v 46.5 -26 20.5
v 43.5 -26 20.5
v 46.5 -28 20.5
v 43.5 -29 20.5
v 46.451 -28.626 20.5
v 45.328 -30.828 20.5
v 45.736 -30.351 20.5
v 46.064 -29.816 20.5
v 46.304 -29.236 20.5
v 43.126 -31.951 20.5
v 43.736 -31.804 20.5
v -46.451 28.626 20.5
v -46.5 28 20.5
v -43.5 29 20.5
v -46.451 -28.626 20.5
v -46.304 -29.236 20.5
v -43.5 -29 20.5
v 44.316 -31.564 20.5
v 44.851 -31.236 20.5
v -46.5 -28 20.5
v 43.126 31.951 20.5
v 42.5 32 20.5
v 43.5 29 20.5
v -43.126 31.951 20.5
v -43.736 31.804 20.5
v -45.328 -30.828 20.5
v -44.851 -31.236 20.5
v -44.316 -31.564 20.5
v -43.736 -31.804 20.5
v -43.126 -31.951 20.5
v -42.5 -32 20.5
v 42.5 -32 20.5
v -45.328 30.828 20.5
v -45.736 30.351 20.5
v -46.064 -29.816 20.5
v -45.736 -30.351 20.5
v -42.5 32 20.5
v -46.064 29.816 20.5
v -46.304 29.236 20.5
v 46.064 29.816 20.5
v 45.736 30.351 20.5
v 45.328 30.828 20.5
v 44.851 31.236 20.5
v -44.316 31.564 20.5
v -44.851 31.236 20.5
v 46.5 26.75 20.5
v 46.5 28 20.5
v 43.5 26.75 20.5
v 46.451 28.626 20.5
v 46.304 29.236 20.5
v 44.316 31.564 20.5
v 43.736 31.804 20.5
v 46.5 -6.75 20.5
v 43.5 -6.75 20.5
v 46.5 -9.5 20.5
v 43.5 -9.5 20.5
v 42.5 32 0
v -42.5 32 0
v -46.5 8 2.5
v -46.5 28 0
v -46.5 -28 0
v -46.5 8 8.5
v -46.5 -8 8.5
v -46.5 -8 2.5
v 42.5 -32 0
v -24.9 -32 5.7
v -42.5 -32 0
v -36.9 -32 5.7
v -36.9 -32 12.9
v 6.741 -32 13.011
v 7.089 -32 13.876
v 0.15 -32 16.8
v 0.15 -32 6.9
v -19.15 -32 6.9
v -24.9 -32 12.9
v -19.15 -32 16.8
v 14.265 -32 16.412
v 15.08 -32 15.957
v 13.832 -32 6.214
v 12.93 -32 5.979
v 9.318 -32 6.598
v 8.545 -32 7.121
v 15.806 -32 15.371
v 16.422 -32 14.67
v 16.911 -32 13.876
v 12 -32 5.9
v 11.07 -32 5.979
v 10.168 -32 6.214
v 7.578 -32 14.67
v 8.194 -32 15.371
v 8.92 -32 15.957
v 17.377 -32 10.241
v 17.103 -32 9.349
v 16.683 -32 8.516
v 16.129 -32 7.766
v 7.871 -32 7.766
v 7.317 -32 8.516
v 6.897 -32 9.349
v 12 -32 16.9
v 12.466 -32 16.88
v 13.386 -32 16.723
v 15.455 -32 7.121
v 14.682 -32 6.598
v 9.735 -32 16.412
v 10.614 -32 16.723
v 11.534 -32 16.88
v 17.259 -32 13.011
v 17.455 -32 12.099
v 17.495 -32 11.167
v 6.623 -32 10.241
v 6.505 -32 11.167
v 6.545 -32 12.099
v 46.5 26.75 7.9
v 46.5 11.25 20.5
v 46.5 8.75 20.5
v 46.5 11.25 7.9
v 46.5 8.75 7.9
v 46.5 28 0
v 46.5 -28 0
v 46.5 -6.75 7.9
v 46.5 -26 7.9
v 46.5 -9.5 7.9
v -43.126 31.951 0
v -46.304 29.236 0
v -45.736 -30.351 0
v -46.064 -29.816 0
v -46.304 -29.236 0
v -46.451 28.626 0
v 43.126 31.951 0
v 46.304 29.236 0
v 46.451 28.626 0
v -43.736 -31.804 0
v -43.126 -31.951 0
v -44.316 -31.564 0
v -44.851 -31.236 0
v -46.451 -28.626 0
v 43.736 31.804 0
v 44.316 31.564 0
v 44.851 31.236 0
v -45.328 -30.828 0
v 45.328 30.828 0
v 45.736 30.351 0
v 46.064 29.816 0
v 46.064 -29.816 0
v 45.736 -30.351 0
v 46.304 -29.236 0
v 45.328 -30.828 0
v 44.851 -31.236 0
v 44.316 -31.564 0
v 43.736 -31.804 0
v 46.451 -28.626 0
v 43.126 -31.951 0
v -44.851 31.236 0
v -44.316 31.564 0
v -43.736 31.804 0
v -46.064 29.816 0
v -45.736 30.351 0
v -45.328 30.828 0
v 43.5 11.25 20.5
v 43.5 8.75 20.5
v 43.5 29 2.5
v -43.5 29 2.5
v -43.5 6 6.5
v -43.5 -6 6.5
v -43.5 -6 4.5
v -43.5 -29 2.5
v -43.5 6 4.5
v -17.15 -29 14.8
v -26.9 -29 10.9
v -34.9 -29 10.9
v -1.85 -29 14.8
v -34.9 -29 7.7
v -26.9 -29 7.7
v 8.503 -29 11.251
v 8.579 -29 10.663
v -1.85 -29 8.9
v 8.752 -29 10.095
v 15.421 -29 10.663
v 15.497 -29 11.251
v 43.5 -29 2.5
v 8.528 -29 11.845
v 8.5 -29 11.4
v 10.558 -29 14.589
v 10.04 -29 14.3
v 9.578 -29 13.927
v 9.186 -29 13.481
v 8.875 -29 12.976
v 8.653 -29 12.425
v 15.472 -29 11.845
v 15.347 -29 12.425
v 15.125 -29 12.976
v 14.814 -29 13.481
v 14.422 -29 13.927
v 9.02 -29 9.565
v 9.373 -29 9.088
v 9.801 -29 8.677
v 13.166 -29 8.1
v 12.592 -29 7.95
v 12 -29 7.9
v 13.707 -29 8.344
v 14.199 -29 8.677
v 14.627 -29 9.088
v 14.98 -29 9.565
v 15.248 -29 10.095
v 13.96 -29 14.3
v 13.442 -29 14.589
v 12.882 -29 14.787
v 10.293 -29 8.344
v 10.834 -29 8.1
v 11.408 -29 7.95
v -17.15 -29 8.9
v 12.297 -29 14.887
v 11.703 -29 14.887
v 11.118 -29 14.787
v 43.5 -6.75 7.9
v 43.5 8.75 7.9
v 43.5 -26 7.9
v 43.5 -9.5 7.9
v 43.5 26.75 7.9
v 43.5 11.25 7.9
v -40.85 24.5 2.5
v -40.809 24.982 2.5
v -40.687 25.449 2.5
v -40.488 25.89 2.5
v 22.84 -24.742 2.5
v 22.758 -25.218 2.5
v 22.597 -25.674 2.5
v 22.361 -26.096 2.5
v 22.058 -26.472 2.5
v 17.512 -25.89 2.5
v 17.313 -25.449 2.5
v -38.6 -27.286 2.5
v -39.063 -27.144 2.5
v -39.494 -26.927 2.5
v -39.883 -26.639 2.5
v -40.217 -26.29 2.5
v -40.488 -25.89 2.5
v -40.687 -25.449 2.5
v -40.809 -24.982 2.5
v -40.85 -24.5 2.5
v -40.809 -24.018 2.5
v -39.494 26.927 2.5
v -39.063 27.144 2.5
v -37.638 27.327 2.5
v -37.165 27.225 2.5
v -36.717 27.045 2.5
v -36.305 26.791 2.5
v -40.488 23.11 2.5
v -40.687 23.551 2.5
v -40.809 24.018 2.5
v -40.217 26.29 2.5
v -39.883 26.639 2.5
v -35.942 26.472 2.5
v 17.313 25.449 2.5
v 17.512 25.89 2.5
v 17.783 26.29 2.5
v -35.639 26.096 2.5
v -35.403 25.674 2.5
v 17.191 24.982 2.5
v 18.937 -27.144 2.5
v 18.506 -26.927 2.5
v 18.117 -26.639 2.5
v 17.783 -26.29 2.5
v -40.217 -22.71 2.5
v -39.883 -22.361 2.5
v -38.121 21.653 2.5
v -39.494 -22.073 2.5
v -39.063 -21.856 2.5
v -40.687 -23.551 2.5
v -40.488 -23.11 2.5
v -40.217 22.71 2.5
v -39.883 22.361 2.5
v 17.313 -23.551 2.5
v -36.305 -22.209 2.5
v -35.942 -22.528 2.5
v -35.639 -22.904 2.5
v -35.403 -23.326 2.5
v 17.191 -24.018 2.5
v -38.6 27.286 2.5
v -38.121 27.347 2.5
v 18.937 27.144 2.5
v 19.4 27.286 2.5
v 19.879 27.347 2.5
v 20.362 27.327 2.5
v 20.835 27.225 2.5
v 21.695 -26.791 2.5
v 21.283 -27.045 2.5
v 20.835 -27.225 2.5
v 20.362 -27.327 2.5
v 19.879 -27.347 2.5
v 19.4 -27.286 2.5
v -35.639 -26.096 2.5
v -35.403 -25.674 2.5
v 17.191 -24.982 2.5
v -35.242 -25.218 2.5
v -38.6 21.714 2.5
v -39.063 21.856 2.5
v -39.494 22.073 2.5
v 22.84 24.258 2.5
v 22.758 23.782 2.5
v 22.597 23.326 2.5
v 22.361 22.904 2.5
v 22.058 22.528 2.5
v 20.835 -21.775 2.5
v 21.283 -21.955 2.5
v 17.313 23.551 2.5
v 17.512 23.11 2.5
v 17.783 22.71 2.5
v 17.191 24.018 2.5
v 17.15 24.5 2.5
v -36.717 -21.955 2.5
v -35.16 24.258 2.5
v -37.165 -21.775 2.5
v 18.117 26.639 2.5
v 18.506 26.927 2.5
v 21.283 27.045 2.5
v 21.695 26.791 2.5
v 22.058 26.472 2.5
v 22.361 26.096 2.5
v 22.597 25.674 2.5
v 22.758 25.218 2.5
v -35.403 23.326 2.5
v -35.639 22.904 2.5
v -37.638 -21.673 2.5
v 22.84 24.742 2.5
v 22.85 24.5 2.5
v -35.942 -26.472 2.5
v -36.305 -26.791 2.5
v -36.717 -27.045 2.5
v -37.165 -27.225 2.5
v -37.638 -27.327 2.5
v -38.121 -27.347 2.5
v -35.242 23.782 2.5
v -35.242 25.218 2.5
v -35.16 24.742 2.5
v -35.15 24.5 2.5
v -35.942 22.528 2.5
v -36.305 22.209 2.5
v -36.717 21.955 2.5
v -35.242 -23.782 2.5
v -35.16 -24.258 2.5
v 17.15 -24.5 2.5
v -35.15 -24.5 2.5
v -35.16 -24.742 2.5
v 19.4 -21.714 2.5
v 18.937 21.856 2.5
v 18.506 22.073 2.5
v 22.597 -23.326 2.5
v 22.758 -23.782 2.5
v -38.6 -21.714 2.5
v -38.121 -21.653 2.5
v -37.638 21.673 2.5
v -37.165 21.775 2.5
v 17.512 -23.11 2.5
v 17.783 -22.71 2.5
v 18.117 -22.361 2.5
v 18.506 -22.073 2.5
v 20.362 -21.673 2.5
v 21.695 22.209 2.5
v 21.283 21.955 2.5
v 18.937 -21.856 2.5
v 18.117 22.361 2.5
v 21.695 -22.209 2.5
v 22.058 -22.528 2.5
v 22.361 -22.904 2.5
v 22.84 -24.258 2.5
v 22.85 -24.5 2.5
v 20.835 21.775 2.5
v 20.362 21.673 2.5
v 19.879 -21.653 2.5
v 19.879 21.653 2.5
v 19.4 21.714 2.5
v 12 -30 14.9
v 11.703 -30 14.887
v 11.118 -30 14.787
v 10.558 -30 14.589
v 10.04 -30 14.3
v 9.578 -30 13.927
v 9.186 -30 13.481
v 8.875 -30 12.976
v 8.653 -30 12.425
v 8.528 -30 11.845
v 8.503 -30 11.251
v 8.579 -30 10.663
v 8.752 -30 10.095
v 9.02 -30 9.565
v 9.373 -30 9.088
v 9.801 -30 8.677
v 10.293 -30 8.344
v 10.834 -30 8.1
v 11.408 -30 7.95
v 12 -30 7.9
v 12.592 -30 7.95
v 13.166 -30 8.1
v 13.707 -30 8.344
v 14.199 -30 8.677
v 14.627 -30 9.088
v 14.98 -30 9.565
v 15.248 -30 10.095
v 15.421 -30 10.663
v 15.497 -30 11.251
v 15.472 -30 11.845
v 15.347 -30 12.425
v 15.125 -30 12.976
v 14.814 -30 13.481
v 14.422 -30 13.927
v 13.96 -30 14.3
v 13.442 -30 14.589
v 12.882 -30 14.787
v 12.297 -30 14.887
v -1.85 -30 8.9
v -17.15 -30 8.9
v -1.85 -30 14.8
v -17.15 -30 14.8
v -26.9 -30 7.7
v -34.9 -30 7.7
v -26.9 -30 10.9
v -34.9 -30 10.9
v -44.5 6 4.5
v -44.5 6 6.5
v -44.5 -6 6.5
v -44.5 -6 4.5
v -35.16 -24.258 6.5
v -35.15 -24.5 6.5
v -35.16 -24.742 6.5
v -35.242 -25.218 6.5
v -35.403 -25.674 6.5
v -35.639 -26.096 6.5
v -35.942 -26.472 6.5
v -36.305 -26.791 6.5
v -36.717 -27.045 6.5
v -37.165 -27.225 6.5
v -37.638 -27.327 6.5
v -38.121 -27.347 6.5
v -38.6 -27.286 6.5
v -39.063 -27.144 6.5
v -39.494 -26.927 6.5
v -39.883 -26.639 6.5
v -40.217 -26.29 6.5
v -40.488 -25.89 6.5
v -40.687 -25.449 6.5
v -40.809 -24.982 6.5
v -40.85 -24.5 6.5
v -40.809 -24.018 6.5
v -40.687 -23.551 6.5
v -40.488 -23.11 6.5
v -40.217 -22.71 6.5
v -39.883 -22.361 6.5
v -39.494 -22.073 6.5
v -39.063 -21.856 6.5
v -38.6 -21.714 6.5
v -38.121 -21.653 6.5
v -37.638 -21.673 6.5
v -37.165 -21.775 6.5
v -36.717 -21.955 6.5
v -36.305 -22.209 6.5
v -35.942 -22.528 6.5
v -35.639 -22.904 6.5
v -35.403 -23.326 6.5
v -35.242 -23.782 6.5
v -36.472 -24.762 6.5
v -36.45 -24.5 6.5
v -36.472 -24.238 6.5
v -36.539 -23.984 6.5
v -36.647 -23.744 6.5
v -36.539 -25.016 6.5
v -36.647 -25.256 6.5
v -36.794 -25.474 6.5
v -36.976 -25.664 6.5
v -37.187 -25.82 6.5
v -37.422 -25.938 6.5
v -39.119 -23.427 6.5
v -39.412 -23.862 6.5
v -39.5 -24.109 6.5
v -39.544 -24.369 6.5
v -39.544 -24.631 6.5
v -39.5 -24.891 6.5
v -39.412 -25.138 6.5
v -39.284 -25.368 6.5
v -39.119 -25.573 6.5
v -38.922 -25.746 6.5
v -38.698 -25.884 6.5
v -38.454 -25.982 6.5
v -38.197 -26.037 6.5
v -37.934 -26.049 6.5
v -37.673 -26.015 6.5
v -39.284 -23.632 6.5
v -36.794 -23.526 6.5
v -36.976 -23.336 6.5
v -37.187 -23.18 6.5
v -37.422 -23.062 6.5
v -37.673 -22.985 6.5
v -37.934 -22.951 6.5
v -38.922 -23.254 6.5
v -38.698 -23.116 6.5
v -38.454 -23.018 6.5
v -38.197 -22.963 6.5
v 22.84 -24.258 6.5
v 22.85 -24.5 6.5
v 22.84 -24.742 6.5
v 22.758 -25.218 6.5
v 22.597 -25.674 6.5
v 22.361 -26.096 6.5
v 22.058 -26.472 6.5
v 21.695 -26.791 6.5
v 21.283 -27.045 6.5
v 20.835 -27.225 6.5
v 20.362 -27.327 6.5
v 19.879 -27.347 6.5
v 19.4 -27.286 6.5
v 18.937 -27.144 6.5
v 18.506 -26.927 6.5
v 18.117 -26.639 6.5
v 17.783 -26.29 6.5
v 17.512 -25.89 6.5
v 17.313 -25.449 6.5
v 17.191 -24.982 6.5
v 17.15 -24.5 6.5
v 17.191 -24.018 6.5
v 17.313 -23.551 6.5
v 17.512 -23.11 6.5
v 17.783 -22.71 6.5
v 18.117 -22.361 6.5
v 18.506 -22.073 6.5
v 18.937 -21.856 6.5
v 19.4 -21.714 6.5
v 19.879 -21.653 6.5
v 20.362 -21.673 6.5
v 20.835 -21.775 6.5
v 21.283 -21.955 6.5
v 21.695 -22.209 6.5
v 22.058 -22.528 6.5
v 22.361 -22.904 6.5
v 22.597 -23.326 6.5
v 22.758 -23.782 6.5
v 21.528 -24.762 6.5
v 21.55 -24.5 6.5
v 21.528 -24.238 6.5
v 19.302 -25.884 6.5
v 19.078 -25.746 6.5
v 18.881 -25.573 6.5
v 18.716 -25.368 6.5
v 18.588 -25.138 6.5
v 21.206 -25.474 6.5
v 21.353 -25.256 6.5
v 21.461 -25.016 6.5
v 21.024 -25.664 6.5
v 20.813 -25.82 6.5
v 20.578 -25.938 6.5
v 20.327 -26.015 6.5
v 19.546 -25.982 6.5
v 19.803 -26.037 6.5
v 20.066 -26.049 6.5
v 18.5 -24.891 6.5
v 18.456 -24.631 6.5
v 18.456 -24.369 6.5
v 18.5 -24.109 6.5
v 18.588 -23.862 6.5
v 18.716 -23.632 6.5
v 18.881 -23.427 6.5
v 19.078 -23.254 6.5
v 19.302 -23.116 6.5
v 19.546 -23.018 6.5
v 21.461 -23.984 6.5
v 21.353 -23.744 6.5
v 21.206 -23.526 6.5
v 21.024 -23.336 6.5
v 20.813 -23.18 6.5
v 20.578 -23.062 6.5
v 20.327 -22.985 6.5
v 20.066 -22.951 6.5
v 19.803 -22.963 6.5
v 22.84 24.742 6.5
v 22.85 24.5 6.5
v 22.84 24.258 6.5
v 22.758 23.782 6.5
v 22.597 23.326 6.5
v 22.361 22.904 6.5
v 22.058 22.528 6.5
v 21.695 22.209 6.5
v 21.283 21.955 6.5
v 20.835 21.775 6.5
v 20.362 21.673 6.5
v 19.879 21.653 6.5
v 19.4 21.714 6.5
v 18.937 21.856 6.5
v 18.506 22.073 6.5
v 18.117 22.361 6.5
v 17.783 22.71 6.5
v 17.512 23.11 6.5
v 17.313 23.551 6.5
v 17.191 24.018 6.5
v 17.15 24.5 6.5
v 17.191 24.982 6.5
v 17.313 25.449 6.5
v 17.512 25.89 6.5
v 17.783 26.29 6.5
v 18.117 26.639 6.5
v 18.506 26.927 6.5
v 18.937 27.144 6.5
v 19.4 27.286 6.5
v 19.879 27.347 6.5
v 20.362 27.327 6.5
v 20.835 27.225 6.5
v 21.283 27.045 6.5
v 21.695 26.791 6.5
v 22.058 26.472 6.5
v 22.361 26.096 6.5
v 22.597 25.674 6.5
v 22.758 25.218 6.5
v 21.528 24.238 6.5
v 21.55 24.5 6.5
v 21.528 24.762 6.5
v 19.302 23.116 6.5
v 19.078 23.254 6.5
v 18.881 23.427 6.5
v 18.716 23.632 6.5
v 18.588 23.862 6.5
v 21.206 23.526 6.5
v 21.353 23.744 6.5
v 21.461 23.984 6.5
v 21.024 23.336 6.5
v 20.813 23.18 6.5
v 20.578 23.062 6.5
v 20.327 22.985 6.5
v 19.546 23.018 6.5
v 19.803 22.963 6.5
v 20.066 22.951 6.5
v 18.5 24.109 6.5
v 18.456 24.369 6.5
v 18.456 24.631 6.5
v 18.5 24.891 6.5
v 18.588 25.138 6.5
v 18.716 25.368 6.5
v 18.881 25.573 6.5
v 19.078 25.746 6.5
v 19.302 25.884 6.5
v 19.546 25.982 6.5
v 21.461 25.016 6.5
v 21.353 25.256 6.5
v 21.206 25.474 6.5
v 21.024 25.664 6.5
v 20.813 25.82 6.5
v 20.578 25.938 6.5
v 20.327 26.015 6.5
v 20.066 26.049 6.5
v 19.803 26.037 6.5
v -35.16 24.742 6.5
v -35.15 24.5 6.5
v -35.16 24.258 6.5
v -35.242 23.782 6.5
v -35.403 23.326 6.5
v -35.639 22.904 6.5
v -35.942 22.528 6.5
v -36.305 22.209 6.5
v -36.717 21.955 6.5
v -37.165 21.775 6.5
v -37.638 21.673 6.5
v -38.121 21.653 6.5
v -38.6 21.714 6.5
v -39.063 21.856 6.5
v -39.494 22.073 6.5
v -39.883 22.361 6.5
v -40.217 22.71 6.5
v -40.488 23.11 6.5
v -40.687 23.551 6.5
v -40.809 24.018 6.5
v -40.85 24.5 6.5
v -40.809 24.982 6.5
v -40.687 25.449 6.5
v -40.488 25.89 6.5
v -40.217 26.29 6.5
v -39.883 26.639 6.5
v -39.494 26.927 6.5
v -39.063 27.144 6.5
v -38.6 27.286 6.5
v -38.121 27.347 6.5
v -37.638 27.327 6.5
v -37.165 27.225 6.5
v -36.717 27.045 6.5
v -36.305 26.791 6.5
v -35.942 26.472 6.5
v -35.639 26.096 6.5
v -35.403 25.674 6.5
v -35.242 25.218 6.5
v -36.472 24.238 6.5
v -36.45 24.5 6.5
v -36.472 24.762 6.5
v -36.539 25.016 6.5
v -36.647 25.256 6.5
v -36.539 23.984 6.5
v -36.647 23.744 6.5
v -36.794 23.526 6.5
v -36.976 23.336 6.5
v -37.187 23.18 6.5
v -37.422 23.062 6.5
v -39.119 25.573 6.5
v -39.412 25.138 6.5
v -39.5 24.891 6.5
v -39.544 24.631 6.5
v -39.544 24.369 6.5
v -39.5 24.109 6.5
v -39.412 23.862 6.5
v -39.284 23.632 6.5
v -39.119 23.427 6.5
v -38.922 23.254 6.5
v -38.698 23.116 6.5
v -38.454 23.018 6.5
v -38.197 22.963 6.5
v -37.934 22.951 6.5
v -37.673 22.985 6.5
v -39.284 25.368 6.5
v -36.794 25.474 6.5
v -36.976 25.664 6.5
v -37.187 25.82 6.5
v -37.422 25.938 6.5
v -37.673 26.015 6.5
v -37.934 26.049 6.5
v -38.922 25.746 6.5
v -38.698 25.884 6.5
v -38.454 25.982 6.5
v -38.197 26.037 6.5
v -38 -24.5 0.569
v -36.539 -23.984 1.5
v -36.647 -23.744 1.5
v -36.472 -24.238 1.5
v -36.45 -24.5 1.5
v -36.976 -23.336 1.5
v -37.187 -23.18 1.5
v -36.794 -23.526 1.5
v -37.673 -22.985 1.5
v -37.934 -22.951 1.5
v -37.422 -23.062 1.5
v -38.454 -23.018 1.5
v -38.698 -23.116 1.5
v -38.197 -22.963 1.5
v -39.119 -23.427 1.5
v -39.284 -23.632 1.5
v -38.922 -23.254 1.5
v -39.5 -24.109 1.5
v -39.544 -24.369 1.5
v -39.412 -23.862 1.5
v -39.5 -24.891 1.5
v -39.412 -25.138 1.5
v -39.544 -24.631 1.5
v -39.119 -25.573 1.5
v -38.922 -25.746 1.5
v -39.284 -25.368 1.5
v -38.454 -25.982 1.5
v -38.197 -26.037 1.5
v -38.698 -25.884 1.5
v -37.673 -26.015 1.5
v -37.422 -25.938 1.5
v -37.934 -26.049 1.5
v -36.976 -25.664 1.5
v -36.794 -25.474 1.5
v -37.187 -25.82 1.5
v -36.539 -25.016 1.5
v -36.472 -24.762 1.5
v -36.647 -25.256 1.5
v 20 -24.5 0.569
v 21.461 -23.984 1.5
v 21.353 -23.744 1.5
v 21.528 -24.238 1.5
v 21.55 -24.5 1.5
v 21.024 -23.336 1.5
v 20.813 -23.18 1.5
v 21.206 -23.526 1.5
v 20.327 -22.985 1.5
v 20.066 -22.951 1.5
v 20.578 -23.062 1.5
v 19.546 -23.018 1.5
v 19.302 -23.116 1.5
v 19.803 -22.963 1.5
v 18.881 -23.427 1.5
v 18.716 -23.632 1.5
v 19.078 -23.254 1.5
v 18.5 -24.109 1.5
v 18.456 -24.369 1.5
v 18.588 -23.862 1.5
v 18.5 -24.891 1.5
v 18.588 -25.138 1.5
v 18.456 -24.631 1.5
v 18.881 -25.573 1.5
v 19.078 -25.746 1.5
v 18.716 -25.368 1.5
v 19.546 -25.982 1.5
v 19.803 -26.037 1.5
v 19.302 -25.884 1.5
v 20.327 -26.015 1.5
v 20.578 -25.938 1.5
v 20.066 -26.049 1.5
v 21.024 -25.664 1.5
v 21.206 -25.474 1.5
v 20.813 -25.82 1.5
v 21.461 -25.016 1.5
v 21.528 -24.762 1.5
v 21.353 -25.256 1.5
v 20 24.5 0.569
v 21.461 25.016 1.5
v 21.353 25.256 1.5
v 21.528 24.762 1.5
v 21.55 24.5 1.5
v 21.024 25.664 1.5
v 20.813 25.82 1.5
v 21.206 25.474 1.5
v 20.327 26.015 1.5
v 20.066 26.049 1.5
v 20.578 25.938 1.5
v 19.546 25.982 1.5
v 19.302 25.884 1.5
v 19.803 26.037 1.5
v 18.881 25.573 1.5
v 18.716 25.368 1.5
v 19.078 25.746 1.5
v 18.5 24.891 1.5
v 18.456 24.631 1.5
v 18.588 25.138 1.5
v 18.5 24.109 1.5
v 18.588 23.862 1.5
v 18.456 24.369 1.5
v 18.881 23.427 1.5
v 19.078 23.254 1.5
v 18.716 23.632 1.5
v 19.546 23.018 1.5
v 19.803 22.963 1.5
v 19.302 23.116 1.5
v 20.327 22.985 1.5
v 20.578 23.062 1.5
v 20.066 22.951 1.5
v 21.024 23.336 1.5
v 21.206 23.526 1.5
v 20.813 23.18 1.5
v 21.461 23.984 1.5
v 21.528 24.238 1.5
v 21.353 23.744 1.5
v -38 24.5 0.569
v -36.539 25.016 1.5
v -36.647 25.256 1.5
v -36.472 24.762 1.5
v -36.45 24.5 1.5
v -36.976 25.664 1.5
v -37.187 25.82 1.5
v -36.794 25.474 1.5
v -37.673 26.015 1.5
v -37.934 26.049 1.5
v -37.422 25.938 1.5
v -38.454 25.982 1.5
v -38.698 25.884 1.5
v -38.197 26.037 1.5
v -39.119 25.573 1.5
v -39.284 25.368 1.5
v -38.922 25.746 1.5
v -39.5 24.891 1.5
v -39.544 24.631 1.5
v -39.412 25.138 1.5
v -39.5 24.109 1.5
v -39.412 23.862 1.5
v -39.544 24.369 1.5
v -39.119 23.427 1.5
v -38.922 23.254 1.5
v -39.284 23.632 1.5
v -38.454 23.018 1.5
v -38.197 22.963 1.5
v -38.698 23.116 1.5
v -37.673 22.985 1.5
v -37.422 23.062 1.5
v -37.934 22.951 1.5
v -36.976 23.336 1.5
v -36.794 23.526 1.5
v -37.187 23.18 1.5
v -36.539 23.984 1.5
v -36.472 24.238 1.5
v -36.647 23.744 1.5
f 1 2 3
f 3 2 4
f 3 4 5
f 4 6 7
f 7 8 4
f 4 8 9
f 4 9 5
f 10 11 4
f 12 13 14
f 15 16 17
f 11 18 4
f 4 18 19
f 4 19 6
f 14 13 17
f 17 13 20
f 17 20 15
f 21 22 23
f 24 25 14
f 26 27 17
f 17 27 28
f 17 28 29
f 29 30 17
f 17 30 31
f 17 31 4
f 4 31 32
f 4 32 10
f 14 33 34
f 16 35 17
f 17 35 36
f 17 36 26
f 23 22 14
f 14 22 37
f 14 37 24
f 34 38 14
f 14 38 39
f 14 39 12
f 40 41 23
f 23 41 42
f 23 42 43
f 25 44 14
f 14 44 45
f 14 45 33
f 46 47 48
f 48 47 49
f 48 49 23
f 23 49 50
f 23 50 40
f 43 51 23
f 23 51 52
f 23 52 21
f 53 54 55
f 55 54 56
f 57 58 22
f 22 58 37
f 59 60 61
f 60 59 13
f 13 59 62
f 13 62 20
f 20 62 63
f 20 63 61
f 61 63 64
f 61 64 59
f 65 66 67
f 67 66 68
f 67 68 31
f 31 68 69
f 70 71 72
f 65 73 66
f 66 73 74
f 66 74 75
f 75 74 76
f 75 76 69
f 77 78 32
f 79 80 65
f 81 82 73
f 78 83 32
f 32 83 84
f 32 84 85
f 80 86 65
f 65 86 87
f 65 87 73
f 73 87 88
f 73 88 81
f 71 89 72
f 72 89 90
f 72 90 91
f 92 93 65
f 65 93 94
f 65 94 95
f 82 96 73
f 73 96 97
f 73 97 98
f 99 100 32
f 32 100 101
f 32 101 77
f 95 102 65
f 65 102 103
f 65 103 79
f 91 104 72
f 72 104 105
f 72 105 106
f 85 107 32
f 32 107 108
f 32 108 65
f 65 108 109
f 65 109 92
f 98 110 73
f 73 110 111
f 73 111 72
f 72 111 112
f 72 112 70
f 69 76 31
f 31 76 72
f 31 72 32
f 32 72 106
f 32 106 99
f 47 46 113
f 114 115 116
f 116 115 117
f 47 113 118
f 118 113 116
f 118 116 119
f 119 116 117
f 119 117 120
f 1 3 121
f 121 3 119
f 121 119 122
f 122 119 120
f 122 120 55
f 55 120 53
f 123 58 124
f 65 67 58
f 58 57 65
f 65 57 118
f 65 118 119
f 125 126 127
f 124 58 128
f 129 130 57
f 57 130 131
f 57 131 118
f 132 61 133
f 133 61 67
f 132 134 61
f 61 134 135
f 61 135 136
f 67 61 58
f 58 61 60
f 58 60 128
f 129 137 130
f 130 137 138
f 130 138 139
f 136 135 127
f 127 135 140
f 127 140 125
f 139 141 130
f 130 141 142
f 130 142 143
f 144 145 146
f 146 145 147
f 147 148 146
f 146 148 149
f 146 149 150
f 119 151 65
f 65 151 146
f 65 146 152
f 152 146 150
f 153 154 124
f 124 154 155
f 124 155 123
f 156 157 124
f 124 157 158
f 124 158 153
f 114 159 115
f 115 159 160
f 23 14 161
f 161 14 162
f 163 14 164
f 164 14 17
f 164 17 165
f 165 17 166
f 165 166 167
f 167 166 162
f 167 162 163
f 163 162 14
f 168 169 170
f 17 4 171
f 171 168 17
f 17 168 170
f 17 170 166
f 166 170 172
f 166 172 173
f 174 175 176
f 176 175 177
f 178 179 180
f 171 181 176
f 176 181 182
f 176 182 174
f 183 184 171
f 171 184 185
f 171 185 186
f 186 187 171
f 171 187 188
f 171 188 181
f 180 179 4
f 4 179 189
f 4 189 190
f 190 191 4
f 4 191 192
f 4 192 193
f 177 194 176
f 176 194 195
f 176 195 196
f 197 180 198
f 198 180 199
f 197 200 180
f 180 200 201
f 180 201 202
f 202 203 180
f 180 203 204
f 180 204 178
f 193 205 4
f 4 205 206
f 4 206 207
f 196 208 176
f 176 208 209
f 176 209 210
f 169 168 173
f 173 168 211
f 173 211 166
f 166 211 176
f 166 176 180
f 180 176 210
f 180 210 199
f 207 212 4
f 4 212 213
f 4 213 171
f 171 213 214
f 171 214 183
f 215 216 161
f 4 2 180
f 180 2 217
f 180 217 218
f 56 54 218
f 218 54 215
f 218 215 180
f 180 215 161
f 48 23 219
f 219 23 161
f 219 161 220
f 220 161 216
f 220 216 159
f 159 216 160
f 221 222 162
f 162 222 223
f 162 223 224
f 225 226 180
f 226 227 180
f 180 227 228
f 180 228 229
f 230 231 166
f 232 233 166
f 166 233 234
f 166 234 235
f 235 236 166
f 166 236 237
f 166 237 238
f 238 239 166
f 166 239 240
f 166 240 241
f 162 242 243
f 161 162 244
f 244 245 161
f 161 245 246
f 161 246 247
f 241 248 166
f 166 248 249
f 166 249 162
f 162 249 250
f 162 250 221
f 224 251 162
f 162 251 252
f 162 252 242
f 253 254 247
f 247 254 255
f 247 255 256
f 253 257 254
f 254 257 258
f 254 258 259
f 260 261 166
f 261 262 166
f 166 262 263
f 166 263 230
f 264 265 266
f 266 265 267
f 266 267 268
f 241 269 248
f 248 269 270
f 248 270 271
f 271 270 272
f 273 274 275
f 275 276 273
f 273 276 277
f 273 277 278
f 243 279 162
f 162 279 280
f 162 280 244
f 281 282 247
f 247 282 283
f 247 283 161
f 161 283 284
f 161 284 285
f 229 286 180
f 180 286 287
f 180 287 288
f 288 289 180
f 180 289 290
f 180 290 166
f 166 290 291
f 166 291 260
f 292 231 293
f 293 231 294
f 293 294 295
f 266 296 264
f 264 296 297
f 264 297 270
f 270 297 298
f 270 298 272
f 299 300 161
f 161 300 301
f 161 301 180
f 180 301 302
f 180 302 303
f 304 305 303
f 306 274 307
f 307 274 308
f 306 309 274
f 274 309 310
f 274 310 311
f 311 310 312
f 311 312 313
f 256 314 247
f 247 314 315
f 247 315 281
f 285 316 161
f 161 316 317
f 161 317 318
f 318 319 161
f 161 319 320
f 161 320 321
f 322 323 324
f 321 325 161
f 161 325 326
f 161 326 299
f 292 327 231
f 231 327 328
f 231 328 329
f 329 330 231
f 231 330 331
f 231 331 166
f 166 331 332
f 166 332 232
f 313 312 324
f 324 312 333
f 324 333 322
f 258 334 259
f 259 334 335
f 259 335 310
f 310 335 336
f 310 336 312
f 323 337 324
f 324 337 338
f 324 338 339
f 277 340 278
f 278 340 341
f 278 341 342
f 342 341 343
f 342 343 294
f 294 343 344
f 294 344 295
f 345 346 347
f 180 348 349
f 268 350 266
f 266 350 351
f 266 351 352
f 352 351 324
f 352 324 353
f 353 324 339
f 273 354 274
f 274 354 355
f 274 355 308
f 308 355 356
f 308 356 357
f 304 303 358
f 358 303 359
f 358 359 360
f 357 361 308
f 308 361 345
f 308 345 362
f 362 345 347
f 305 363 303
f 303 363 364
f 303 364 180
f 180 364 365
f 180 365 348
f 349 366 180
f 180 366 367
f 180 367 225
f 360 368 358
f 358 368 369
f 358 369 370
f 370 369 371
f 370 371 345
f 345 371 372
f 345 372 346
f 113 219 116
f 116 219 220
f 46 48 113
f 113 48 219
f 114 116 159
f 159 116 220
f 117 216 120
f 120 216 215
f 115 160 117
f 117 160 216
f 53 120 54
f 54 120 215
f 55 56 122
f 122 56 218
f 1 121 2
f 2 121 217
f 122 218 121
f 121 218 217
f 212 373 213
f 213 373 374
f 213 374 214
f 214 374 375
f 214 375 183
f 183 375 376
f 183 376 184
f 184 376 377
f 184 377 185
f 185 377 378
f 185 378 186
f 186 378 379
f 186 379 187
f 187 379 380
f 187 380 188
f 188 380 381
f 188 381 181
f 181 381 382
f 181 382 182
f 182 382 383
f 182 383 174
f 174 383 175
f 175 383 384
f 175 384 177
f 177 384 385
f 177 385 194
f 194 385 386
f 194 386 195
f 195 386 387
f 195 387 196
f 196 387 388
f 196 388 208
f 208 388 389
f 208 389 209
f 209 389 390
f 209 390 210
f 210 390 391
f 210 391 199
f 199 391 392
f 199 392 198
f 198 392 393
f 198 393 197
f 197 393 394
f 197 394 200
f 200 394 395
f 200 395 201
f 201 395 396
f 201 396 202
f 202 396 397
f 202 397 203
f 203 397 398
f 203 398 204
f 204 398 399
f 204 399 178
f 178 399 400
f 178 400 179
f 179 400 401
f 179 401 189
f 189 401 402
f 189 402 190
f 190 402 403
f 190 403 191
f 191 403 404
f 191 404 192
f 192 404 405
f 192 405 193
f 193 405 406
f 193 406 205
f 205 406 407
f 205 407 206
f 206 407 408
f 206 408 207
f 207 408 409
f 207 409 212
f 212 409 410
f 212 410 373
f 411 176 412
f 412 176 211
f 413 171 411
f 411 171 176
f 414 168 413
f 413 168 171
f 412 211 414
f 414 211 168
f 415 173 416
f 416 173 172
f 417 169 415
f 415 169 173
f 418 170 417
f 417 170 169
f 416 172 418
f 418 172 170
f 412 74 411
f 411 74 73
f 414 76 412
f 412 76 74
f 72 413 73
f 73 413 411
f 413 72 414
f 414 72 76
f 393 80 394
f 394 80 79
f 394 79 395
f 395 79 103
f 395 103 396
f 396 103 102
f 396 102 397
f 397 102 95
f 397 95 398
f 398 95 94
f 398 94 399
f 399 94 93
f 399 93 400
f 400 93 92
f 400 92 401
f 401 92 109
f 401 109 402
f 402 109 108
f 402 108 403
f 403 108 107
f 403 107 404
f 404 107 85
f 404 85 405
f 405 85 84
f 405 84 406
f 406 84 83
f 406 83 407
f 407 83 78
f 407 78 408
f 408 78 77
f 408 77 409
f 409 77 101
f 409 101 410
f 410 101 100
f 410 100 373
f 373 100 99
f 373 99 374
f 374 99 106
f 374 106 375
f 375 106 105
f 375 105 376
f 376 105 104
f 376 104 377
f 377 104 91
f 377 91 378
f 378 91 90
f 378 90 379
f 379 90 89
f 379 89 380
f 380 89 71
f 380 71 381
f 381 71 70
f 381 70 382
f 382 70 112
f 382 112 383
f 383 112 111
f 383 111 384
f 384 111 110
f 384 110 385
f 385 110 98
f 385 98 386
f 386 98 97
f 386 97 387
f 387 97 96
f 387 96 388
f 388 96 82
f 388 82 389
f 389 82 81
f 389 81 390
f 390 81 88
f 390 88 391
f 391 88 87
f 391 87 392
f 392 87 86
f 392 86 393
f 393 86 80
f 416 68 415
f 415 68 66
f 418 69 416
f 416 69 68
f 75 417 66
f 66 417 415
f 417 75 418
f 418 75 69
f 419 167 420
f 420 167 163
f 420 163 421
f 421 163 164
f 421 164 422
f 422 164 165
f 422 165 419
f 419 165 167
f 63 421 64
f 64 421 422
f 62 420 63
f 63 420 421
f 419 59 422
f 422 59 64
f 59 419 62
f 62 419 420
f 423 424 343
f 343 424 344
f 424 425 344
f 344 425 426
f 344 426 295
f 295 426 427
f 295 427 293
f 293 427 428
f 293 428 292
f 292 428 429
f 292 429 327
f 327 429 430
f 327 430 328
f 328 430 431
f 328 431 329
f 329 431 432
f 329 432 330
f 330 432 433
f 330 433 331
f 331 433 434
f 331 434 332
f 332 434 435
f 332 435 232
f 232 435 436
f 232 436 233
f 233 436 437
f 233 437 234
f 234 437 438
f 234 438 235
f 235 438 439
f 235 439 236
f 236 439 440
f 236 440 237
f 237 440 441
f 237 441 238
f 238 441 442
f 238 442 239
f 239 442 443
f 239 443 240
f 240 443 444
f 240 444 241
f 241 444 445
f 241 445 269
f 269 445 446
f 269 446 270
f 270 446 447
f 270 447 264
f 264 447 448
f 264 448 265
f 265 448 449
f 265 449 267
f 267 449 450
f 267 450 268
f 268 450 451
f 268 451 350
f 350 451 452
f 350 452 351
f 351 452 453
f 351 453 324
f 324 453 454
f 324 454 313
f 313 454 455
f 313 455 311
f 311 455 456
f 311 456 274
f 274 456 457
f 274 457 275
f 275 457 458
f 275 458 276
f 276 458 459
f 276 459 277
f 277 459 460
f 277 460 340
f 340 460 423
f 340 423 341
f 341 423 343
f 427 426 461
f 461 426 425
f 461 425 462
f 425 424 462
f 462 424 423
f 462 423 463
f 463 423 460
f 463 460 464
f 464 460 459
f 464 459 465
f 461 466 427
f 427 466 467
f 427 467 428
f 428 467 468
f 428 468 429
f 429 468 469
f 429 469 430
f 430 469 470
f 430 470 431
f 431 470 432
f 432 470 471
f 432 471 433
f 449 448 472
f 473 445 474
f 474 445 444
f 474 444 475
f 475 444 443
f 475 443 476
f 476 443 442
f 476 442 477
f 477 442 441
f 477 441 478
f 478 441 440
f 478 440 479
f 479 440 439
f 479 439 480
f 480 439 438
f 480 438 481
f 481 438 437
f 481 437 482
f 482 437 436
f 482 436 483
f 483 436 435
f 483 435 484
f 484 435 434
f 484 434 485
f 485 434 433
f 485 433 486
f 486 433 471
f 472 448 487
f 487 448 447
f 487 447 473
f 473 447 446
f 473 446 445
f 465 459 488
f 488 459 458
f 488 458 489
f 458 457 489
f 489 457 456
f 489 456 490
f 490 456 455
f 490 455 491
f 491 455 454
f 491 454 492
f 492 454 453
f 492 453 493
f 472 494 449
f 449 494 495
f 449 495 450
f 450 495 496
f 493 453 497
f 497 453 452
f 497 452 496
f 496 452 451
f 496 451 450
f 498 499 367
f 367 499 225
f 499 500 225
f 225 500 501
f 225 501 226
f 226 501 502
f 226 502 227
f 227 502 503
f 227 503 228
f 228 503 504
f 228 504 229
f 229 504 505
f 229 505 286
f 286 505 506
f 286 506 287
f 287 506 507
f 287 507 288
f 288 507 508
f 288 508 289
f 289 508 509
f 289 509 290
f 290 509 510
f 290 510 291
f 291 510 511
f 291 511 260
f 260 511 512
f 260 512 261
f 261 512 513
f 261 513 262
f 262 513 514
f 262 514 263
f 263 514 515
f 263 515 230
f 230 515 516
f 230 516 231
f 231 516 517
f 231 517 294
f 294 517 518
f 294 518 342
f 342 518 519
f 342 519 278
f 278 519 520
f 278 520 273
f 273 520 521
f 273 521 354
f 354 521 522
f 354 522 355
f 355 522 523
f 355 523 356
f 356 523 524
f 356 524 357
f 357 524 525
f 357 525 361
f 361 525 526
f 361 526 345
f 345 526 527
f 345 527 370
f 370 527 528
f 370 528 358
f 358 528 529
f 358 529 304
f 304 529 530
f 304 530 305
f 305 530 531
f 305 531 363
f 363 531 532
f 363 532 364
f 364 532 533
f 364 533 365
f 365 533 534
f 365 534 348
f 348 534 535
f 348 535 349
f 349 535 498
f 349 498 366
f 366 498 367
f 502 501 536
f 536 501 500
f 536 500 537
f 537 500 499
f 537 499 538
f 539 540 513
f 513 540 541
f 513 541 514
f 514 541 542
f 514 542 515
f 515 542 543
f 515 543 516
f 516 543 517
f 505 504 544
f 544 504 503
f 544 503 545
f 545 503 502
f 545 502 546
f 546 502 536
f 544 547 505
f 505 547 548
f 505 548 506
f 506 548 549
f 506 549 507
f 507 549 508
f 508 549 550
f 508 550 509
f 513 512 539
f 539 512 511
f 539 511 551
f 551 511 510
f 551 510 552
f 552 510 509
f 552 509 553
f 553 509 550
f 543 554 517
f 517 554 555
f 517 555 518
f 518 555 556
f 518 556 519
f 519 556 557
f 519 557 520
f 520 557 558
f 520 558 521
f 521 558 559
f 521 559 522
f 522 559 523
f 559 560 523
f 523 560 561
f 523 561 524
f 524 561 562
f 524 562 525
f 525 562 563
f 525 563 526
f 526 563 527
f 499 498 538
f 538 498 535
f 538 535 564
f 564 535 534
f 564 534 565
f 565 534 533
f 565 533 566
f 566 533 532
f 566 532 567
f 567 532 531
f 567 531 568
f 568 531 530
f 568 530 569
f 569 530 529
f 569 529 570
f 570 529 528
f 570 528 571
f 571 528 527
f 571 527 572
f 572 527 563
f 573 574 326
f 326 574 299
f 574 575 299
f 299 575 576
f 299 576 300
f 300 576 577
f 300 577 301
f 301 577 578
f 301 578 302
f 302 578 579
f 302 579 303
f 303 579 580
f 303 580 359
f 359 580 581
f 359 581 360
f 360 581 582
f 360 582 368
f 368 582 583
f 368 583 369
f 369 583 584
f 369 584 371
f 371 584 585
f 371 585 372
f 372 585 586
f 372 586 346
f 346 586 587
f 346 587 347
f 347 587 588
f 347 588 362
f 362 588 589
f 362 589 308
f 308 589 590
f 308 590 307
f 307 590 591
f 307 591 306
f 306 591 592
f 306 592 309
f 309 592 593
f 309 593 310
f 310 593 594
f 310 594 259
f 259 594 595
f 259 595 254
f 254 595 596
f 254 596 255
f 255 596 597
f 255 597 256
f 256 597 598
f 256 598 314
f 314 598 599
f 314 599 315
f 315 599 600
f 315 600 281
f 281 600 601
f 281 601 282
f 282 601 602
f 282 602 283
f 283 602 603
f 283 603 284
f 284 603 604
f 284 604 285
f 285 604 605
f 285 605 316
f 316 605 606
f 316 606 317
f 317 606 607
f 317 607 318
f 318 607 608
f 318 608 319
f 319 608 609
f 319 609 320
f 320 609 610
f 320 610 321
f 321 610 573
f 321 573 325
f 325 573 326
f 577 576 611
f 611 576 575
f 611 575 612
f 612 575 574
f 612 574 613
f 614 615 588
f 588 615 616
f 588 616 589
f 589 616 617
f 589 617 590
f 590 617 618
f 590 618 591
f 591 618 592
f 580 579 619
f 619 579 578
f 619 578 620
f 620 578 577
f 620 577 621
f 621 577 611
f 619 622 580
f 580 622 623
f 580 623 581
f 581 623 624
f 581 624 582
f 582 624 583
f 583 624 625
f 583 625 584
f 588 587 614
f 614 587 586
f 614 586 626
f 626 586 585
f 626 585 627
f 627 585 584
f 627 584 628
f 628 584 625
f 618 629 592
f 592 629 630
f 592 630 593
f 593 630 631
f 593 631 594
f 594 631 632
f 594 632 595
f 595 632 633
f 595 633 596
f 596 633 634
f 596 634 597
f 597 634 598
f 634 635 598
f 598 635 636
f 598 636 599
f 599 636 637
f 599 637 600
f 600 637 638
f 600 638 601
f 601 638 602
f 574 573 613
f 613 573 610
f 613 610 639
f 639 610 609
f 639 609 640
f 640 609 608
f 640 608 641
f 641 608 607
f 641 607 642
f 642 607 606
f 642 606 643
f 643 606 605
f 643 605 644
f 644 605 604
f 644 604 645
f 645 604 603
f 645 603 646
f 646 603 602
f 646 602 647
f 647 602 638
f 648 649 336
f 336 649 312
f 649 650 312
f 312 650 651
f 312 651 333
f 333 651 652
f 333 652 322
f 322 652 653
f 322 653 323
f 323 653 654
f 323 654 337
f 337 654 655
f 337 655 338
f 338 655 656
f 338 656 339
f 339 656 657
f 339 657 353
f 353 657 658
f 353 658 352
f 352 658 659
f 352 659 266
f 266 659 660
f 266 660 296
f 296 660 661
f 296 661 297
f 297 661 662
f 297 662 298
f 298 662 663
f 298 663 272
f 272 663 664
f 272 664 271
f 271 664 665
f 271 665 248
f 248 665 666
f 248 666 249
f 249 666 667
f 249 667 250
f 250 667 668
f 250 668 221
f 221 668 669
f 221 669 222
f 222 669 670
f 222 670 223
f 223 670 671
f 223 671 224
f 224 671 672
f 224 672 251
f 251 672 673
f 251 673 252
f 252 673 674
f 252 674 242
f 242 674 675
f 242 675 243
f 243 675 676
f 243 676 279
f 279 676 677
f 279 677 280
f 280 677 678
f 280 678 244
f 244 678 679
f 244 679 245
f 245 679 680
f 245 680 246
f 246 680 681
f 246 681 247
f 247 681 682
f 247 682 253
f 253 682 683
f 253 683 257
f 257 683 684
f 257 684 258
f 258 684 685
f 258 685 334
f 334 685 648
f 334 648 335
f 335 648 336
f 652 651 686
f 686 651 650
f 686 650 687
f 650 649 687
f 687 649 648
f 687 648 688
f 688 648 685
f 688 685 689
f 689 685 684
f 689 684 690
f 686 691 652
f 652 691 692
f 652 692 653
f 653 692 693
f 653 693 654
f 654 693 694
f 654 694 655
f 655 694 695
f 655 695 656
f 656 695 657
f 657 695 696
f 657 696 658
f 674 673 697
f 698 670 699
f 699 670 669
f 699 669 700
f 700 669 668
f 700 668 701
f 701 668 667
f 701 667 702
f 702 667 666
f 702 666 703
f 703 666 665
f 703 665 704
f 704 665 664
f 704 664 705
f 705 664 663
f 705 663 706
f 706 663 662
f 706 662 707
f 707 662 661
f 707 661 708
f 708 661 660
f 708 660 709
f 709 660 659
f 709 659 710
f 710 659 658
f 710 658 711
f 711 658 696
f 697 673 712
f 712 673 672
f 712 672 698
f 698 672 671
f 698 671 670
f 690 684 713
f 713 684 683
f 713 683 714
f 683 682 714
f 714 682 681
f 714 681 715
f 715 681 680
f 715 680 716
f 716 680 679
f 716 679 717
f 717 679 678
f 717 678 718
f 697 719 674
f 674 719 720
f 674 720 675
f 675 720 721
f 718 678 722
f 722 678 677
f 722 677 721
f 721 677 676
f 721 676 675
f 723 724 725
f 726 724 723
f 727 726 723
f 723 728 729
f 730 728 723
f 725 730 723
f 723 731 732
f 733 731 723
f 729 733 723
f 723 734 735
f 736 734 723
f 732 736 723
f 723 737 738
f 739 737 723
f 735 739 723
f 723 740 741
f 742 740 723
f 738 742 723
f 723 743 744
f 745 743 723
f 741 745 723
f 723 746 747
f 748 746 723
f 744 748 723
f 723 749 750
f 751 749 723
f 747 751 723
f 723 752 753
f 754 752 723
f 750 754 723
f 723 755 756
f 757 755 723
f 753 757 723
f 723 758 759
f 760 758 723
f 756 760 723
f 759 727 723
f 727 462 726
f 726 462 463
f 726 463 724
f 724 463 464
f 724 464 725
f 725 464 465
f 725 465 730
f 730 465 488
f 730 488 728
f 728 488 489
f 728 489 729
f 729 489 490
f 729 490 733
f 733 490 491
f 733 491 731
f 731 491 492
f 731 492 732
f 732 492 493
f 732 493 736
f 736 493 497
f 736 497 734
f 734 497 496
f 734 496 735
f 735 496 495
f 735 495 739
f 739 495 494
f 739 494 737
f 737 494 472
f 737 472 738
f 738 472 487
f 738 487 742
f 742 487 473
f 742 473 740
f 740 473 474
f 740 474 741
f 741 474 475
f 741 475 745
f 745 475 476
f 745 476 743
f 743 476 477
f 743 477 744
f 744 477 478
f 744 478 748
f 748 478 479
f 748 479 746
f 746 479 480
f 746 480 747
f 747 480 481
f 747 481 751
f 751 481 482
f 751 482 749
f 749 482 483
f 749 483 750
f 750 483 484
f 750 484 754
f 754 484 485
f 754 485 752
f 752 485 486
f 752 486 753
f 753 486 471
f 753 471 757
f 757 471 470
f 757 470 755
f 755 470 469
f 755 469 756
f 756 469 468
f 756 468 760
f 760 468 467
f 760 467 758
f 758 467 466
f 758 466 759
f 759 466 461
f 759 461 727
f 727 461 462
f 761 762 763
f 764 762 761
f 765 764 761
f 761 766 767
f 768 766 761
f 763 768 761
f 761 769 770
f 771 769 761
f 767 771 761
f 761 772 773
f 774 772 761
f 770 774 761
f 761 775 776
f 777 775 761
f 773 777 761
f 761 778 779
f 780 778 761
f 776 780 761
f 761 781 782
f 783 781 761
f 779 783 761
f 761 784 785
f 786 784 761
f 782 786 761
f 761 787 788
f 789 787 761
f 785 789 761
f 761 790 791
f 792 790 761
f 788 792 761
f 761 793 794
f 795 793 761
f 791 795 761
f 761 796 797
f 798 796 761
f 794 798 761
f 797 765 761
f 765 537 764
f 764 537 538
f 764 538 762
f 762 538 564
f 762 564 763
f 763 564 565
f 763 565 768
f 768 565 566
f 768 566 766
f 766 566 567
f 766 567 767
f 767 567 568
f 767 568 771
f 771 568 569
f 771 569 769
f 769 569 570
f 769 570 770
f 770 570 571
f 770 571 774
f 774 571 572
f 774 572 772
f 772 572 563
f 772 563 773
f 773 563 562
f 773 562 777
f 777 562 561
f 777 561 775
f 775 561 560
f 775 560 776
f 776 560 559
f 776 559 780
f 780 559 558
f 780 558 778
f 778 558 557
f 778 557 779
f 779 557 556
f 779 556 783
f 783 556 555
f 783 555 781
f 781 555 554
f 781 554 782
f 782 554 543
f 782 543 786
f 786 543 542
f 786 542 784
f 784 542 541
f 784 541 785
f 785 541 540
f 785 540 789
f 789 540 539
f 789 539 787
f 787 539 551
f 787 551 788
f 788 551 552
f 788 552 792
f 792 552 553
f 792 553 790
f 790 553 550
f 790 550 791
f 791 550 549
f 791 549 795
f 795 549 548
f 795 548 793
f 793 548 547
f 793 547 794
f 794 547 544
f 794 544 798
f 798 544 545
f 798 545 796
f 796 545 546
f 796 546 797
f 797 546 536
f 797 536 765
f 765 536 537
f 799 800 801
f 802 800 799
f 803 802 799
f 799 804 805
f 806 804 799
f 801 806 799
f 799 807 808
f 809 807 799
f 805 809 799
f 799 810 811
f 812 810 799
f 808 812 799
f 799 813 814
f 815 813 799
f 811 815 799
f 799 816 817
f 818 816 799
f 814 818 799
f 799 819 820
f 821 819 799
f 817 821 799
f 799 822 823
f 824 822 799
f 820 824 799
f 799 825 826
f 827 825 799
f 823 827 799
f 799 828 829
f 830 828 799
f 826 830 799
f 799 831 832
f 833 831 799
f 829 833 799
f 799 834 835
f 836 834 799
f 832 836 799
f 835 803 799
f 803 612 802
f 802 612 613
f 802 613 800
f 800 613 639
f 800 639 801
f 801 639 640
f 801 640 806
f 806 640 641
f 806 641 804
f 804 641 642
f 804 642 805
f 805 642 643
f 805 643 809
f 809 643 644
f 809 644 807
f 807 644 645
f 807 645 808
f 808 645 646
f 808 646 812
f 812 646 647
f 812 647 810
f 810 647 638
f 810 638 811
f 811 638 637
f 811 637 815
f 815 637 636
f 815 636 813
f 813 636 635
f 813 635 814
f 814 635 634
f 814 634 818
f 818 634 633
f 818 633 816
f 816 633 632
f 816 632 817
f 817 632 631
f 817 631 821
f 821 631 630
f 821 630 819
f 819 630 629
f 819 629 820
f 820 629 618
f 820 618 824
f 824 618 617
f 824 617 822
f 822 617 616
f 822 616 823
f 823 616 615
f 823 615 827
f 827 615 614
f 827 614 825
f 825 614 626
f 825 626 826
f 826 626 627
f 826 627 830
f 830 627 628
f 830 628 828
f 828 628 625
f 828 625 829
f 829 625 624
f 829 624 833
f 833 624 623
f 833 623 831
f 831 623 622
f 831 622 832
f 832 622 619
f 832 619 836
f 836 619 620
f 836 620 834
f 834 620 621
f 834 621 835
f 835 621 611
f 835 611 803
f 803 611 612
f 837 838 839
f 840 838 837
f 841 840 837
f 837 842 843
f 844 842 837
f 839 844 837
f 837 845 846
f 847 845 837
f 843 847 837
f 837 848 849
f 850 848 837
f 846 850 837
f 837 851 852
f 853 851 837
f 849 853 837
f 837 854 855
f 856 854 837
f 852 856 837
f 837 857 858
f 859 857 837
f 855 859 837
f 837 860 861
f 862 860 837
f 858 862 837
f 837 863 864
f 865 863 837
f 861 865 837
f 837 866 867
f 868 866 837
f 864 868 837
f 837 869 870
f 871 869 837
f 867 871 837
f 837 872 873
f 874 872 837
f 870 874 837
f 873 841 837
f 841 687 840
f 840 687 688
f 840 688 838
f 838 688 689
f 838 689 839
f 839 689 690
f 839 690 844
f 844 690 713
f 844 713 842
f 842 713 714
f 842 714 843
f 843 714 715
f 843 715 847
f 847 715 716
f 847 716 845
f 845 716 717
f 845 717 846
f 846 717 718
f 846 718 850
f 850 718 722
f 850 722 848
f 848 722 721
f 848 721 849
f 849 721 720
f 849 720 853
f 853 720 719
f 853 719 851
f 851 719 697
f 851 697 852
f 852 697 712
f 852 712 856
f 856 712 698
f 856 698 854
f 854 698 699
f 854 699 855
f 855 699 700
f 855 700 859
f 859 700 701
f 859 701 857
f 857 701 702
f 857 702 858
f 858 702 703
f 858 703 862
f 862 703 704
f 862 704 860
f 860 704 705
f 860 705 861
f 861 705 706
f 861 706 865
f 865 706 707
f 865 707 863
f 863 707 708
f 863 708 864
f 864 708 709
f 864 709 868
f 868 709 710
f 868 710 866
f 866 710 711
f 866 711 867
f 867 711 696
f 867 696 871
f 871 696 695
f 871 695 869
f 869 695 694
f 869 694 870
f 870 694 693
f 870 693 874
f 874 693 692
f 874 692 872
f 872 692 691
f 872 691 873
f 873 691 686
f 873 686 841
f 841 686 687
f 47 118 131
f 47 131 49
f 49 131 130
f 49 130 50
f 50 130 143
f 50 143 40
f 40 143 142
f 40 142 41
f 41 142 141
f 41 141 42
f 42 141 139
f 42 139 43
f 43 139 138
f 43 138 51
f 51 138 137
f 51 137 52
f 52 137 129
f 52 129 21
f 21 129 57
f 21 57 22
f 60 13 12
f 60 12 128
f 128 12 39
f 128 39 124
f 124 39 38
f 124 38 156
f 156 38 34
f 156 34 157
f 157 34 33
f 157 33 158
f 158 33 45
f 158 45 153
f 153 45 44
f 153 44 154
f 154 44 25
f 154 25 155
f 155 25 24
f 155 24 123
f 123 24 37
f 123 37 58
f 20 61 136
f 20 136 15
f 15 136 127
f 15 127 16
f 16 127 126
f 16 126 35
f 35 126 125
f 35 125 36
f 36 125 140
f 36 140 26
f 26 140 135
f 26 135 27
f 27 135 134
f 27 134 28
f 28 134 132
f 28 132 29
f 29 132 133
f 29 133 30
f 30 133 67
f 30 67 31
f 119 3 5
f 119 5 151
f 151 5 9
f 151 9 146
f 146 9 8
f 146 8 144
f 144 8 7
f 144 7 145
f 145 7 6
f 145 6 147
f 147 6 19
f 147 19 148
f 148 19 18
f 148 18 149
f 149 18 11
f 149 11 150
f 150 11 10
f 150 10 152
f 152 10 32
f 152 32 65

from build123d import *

# Parameters (mm, degrees)
BASE_SKETCH_W               = 93
BASE_SKETCH_H               = 64
BASE_DEPTH                  = 2.5
WALLS_SKETCH_W              = 93
WALLS_SKETCH_H              = 64
WALLS_SKETCH_W_2            = 87
WALLS_SKETCH_H_2            = 58
WALLS_DEPTH                 = 18
FRONT_CONNECTORS_REACH      = 102.465
FRONT_CONNECTORS_SKETCH_W   = 12.6
FRONT_CONNECTORS_SKETCH_H   = 16.5
FRONT_CONNECTORS_SKETCH_H_2 = 15.5
SIDE_CONNECTORS_REACH       = 83.722
SIDE_CONNECTORS_SKETCH_R    = 3.5
SIDE_CONNECTORS_SKETCH_W    = 8
SIDE_CONNECTORS_SKETCH_H    = 3.2
SIDE_CONNECTORS_SKETCH_W_2  = 15.3
SIDE_CONNECTORS_SKETCH_H_2  = 5.9
SIDE_CONNECTORS_ANGLE_SIZE  = 2
SD_SLOT_REACH               = 102.465
SD_SLOT_SKETCH_W            = 2
SD_SLOT_SKETCH_H            = 12
SD_SLOT_ANGLE_SIZE          = 2
MOUNT_PILLAR_SKETCH_R       = 2.85
MOUNT_PILLARS_DEPTH         = 4
INSERT_NUT_HOLES_D          = 3.1
INSERT_NUT_HOLES_DEPTH      = 5
INSERT_NUT_HOLES_TIP        = 0.931333959
ZAOBLIT2_R                  = 4


with BuildPart() as part:
    # Base sketch → Base (new body)
    with BuildSketch(Plane.XY):
        Rectangle(BASE_SKETCH_W, BASE_SKETCH_H)
    extrude(amount=BASE_DEPTH)

    # Walls sketch → Walls (add)
    with BuildSketch(Plane.XY.offset(2.5)):
        Rectangle(WALLS_SKETCH_W, WALLS_SKETCH_H)
        Rectangle(WALLS_SKETCH_W_2, WALLS_SKETCH_H_2, mode=Mode.SUBTRACT)
    extrude(amount=WALLS_DEPTH)

    # Front connectors sketch → Front connectors (cut, up to next)
    with BuildSketch(Plane(origin=(46.5, 0, 0), x_dir=(0, 0, -1), z_dir=(1, 0, 0)), mode=Mode.PRIVATE) as front_connectors_sk1:
        with Locations((-14.2, -17.75)):
            Rectangle(FRONT_CONNECTORS_SKETCH_W, FRONT_CONNECTORS_SKETCH_H)
    front_connectors_tool1 = extrude(front_connectors_sk1.sketch, amount=-FRONT_CONNECTORS_REACH, mode=Mode.PRIVATE) & part.part
    # Front connectors sketch → Front connectors (cut, up to next)
    with BuildSketch(Plane(origin=(46.5, 0, 0), x_dir=(0, 0, -1), z_dir=(1, 0, 0)), mode=Mode.PRIVATE) as front_connectors_sk2:
        with Locations((-14.2, 1)):
            Rectangle(FRONT_CONNECTORS_SKETCH_W, FRONT_CONNECTORS_SKETCH_H_2)
    front_connectors_tool2 = extrude(front_connectors_sk2.sketch, amount=-FRONT_CONNECTORS_REACH, mode=Mode.PRIVATE) & part.part
    # Front connectors sketch → Front connectors (cut, up to next)
    with BuildSketch(Plane(origin=(46.5, 0, 0), x_dir=(0, 0, -1), z_dir=(1, 0, 0)), mode=Mode.PRIVATE) as front_connectors_sk3:
        with Locations((-14.2, 19)):
            Rectangle(FRONT_CONNECTORS_SKETCH_W, FRONT_CONNECTORS_SKETCH_H_2)
    front_connectors_tool3 = extrude(front_connectors_sk3.sketch, amount=-FRONT_CONNECTORS_REACH, mode=Mode.PRIVATE) & part.part
    add(front_connectors_tool1.solids().sort_by_distance((46.5, -17.75, 14.2))[0], mode=Mode.SUBTRACT)
    add(front_connectors_tool2.solids().sort_by_distance((46.5, 1, 14.2))[0], mode=Mode.SUBTRACT)
    add(front_connectors_tool3.solids().sort_by_distance((46.5, 19, 14.2))[0], mode=Mode.SUBTRACT)

    # Side connectors sketch → Side connectors (cut, up to next)
    with BuildSketch(Plane.XZ.offset(32), mode=Mode.PRIVATE) as side_connectors_sk1:
        with Locations(Location((12, 11.4, 0), (0, 0, 270))):
            Circle(SIDE_CONNECTORS_SKETCH_R)
    side_connectors_tool1 = extrude(side_connectors_sk1.sketch, amount=-SIDE_CONNECTORS_REACH, mode=Mode.PRIVATE) & part.part
    # Side connectors sketch → Side connectors (cut, up to next)
    with BuildSketch(Plane.XZ.offset(32), mode=Mode.PRIVATE) as side_connectors_sk2:
        with Locations((-30.9, 9.3)):
            Rectangle(SIDE_CONNECTORS_SKETCH_W, SIDE_CONNECTORS_SKETCH_H)
    side_connectors_tool2 = extrude(side_connectors_sk2.sketch, amount=-SIDE_CONNECTORS_REACH, mode=Mode.PRIVATE) & part.part
    # Side connectors sketch → Side connectors (cut, up to next)
    with BuildSketch(Plane.XZ.offset(32), mode=Mode.PRIVATE) as side_connectors_sk3:
        with Locations((-9.5, 11.85)):
            Rectangle(SIDE_CONNECTORS_SKETCH_W_2, SIDE_CONNECTORS_SKETCH_H_2)
    side_connectors_tool3 = extrude(side_connectors_sk3.sketch, amount=-SIDE_CONNECTORS_REACH, mode=Mode.PRIVATE) & part.part
    add(side_connectors_tool1.solids().sort_by_distance((12, -32, 11.4))[0], mode=Mode.SUBTRACT)
    add(side_connectors_tool2.solids().sort_by_distance((-30.9, -32, 9.3))[0], mode=Mode.SUBTRACT)
    add(side_connectors_tool3.solids().sort_by_distance((-9.5, -32, 11.85))[0], mode=Mode.SUBTRACT)

    # Side connectors angle
    side_connectors_angle_edges = [part.edges().sort_by_distance(p)[0] for p in [
        (-9.5, -32, 8.9),
        (-1.85, -32, 11.85),
        (-9.5, -32, 14.8),
        (-17.15, -32, 11.85),
        (12, -32, 14.9),
        (-34.9, -32, 9.3),
        (-30.9, -32, 7.7),
        (-26.9, -32, 9.3),
        (-30.9, -32, 10.9),
    ]]
    chamfer(side_connectors_angle_edges, length=SIDE_CONNECTORS_ANGLE_SIZE)

    # SD slot sketch → SD slot (cut, up to next)
    with BuildSketch(Plane.ZY.offset(46.5), mode=Mode.PRIVATE) as sd_slot_sk1:
        with Locations((5.5, 0)):
            Rectangle(SD_SLOT_SKETCH_W, SD_SLOT_SKETCH_H)
    sd_slot_tool1 = extrude(sd_slot_sk1.sketch, amount=-SD_SLOT_REACH, mode=Mode.PRIVATE) & part.part
    add(sd_slot_tool1.solids().sort_by_distance((-46.5, 0, 5.5))[0], mode=Mode.SUBTRACT)

    # SD slot angle
    sd_slot_angle_edges = [part.edges().sort_by_distance(p)[0] for p in [
        (-46.5, 0, 6.5),
        (-46.5, -6, 5.5),
        (-46.5, 6, 5.5),
        (-46.5, 0, 4.5),
    ]]
    chamfer(sd_slot_angle_edges, length=SD_SLOT_ANGLE_SIZE)

    # Mount pillar sketch → Mount pillars (add)
    with BuildSketch(Plane.XY.offset(2.5)):
        with Locations((-38, -24.5)):
            Circle(MOUNT_PILLAR_SKETCH_R)
        with Locations((20, -24.5)):
            Circle(MOUNT_PILLAR_SKETCH_R)
        with Locations((20, 24.5)):
            Circle(MOUNT_PILLAR_SKETCH_R)
        with Locations((-38, 24.5)):
            Circle(MOUNT_PILLAR_SKETCH_R)
    extrude(amount=MOUNT_PILLARS_DEPTH)

    # Insert nut holes
    with Locations(Plane.XY.offset(6.5)):
        with Locations((-38, 24.5), (20, 24.5), (20, -24.5), (-38, -24.5)):
            Hole(INSERT_NUT_HOLES_D / 2, depth=INSERT_NUT_HOLES_DEPTH)
            with Locations((0, 0, -(INSERT_NUT_HOLES_DEPTH + INSERT_NUT_HOLES_TIP / 2))):  # 118° drill point
                Cone(0, INSERT_NUT_HOLES_D / 2, INSERT_NUT_HOLES_TIP, mode=Mode.SUBTRACT)

    # Zaoblit2
    zaoblit2_edges = [part.edges().sort_by_distance(p)[0] for p in [
        (46.5, 32, 10.25),
        (46.5, -32, 10.25),
        (-46.5, -32, 10.25),
        (-46.5, 32, 10.25),
    ]]
    fillet(zaoblit2_edges, radius=ZAOBLIT2_R)


solid = part.part
